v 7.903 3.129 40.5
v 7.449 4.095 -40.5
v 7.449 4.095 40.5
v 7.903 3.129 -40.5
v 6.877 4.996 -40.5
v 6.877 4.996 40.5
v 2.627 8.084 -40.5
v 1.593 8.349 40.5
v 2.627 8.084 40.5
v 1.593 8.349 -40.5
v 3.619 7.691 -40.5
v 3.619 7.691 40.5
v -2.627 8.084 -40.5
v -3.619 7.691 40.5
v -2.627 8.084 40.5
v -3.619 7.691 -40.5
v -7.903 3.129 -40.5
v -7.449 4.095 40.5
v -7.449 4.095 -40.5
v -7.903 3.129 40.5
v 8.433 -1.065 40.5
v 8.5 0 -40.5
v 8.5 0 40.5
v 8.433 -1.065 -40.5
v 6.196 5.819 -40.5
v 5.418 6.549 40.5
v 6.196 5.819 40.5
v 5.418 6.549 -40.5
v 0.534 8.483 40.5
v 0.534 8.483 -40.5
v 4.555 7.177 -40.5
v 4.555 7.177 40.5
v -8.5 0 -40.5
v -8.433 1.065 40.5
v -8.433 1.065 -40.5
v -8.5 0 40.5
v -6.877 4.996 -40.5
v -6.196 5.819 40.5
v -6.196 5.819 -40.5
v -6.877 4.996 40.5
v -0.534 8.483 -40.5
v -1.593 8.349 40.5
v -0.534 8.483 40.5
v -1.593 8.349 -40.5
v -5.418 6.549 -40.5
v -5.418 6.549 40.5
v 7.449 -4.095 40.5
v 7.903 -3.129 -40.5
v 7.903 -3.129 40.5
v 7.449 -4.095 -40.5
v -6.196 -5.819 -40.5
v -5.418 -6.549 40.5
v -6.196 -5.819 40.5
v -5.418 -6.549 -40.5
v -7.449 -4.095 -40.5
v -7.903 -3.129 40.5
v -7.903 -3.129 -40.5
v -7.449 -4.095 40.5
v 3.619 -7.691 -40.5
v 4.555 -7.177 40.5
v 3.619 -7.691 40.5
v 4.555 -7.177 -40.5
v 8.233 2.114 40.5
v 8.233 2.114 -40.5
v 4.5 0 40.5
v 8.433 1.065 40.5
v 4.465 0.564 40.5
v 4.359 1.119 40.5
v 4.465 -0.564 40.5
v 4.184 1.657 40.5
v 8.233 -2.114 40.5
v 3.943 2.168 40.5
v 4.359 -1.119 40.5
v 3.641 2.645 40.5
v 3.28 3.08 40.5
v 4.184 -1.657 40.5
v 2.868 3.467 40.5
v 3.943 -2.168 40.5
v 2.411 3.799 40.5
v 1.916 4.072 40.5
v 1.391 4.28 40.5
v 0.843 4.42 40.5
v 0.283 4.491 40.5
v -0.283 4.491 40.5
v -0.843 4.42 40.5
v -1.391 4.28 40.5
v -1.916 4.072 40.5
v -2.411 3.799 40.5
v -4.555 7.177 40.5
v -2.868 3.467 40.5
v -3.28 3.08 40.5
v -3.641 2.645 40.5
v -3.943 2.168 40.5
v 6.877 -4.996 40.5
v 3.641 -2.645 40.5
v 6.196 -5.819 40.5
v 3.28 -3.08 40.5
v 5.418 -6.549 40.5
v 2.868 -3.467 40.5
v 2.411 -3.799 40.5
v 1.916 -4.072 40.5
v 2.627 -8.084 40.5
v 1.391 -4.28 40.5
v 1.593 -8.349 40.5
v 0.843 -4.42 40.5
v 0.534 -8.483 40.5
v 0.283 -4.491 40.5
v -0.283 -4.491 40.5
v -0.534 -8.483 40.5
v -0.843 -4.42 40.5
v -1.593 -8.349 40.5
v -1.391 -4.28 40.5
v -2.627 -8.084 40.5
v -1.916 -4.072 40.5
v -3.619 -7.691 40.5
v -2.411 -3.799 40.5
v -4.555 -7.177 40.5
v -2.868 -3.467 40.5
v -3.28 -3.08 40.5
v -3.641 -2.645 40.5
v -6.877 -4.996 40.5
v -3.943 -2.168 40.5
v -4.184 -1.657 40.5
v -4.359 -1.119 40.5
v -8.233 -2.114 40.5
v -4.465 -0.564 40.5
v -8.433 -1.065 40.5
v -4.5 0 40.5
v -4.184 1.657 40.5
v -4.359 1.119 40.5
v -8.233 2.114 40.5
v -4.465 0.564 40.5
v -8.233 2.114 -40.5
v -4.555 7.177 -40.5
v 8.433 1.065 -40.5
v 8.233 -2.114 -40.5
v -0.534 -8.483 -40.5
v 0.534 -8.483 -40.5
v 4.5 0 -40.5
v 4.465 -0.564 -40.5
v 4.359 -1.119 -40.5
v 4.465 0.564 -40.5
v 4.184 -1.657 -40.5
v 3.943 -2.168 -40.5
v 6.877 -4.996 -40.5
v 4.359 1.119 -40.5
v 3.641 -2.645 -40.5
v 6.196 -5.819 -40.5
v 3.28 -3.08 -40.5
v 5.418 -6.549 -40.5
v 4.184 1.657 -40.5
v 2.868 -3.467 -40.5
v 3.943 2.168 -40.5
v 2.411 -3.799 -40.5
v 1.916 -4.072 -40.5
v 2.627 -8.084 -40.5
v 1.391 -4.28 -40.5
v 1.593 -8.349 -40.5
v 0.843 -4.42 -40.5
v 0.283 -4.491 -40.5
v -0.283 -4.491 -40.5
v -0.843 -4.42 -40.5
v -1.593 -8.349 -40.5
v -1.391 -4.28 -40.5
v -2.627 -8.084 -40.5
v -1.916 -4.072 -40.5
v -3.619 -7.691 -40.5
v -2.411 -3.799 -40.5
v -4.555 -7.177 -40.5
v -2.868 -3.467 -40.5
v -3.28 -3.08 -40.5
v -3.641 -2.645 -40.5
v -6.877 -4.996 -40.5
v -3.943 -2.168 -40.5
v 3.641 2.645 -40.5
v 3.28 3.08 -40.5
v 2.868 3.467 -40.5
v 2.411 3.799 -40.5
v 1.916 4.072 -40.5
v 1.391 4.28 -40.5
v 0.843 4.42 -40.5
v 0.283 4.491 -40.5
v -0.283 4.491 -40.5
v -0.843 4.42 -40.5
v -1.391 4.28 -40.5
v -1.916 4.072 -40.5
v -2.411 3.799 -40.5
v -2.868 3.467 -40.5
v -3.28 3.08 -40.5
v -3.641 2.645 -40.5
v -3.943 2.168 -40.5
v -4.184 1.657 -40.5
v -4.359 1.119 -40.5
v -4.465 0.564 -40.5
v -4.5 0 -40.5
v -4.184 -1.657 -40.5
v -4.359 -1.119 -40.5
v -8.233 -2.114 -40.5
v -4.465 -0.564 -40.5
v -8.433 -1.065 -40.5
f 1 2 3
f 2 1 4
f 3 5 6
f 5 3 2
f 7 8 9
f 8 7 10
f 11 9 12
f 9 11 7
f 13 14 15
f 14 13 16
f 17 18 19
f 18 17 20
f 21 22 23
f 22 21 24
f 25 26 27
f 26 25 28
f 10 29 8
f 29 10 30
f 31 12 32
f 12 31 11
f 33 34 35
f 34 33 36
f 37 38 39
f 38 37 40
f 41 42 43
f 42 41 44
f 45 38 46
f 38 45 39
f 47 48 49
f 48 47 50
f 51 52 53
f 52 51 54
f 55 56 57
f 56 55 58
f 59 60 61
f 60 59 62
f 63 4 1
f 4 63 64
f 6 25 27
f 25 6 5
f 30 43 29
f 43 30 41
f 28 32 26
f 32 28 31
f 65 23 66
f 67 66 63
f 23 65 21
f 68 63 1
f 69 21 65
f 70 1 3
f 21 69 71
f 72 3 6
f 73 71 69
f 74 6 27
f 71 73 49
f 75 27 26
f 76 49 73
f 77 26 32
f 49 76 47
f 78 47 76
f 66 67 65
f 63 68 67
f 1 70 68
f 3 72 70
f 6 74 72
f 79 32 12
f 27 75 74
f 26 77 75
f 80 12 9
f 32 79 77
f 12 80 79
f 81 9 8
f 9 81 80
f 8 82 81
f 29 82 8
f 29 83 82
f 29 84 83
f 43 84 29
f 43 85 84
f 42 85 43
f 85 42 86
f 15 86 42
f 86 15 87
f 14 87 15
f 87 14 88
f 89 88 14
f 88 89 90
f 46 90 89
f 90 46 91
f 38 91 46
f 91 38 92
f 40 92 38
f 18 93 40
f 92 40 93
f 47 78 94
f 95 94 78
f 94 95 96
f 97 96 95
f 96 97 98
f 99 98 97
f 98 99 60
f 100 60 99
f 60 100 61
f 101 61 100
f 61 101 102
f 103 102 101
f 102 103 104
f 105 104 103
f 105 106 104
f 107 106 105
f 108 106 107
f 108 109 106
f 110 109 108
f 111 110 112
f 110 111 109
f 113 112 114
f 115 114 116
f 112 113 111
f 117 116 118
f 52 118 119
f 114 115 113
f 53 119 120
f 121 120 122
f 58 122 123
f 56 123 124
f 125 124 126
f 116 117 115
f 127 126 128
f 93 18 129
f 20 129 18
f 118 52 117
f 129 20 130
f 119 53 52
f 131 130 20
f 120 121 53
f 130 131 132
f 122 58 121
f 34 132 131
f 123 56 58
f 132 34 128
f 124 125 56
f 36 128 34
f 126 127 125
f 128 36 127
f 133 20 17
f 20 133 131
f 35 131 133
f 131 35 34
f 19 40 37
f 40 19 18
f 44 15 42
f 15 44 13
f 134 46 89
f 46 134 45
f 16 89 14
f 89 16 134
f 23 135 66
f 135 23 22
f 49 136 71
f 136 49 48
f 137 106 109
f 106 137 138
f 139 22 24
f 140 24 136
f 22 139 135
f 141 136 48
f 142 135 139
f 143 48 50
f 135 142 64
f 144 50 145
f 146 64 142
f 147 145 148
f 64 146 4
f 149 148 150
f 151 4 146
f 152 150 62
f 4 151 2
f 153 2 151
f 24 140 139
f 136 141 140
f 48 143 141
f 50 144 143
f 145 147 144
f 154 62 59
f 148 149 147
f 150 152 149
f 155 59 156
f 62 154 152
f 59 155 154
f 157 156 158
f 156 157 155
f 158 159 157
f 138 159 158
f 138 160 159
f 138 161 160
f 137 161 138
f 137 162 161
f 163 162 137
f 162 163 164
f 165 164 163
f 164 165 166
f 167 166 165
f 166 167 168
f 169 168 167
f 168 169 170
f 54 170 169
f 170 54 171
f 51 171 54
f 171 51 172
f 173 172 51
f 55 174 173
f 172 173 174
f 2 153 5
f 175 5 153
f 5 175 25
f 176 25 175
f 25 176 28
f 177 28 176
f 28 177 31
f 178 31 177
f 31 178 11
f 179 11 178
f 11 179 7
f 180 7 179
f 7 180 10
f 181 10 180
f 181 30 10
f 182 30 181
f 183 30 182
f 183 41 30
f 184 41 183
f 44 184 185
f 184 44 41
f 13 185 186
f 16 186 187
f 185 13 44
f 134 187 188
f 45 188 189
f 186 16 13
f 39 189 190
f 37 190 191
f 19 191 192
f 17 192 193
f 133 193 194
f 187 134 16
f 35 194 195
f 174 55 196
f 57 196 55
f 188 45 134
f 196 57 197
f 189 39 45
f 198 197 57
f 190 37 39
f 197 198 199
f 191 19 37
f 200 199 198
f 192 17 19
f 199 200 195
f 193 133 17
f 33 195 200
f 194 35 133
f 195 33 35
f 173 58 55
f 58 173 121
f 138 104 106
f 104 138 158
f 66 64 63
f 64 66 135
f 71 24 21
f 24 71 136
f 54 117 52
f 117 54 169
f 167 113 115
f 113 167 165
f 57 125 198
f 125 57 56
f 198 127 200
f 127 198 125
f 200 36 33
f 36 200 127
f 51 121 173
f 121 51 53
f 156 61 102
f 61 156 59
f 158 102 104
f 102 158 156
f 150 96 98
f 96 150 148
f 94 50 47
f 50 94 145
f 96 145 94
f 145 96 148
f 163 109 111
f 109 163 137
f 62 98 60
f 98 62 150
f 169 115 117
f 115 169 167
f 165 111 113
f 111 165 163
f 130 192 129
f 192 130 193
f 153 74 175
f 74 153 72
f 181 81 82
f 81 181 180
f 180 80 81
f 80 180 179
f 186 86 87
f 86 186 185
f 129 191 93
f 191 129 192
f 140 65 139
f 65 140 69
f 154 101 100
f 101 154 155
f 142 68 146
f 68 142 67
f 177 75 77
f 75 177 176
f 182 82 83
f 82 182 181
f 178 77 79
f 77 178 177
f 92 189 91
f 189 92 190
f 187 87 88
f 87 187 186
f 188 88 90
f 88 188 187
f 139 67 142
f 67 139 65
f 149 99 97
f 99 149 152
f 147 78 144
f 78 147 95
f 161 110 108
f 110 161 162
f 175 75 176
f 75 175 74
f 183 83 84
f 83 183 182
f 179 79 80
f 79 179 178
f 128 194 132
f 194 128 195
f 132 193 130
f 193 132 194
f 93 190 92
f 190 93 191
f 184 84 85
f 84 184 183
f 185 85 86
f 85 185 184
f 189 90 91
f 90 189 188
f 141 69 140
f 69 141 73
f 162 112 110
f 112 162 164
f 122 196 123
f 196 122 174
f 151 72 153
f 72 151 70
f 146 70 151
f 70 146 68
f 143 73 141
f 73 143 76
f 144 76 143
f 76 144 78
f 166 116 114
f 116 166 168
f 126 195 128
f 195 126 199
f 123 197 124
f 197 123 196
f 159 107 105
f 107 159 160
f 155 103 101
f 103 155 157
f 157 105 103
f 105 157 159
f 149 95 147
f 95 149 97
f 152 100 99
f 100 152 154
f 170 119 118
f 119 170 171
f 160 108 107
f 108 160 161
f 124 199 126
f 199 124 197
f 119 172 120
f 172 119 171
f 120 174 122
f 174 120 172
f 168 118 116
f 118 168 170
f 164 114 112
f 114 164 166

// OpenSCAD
$fn = 50;


difference() {
	union() {
		translate(v = [0, 0, -40.5000000000]) {
			cylinder(h = 81, r = 8.5000000000);
		}
	}
	union() {
		translate(v = [0, 0, -100.0000000000]) {
			cylinder(h = 200, r = 4.5000000000);
		}
	}
}
